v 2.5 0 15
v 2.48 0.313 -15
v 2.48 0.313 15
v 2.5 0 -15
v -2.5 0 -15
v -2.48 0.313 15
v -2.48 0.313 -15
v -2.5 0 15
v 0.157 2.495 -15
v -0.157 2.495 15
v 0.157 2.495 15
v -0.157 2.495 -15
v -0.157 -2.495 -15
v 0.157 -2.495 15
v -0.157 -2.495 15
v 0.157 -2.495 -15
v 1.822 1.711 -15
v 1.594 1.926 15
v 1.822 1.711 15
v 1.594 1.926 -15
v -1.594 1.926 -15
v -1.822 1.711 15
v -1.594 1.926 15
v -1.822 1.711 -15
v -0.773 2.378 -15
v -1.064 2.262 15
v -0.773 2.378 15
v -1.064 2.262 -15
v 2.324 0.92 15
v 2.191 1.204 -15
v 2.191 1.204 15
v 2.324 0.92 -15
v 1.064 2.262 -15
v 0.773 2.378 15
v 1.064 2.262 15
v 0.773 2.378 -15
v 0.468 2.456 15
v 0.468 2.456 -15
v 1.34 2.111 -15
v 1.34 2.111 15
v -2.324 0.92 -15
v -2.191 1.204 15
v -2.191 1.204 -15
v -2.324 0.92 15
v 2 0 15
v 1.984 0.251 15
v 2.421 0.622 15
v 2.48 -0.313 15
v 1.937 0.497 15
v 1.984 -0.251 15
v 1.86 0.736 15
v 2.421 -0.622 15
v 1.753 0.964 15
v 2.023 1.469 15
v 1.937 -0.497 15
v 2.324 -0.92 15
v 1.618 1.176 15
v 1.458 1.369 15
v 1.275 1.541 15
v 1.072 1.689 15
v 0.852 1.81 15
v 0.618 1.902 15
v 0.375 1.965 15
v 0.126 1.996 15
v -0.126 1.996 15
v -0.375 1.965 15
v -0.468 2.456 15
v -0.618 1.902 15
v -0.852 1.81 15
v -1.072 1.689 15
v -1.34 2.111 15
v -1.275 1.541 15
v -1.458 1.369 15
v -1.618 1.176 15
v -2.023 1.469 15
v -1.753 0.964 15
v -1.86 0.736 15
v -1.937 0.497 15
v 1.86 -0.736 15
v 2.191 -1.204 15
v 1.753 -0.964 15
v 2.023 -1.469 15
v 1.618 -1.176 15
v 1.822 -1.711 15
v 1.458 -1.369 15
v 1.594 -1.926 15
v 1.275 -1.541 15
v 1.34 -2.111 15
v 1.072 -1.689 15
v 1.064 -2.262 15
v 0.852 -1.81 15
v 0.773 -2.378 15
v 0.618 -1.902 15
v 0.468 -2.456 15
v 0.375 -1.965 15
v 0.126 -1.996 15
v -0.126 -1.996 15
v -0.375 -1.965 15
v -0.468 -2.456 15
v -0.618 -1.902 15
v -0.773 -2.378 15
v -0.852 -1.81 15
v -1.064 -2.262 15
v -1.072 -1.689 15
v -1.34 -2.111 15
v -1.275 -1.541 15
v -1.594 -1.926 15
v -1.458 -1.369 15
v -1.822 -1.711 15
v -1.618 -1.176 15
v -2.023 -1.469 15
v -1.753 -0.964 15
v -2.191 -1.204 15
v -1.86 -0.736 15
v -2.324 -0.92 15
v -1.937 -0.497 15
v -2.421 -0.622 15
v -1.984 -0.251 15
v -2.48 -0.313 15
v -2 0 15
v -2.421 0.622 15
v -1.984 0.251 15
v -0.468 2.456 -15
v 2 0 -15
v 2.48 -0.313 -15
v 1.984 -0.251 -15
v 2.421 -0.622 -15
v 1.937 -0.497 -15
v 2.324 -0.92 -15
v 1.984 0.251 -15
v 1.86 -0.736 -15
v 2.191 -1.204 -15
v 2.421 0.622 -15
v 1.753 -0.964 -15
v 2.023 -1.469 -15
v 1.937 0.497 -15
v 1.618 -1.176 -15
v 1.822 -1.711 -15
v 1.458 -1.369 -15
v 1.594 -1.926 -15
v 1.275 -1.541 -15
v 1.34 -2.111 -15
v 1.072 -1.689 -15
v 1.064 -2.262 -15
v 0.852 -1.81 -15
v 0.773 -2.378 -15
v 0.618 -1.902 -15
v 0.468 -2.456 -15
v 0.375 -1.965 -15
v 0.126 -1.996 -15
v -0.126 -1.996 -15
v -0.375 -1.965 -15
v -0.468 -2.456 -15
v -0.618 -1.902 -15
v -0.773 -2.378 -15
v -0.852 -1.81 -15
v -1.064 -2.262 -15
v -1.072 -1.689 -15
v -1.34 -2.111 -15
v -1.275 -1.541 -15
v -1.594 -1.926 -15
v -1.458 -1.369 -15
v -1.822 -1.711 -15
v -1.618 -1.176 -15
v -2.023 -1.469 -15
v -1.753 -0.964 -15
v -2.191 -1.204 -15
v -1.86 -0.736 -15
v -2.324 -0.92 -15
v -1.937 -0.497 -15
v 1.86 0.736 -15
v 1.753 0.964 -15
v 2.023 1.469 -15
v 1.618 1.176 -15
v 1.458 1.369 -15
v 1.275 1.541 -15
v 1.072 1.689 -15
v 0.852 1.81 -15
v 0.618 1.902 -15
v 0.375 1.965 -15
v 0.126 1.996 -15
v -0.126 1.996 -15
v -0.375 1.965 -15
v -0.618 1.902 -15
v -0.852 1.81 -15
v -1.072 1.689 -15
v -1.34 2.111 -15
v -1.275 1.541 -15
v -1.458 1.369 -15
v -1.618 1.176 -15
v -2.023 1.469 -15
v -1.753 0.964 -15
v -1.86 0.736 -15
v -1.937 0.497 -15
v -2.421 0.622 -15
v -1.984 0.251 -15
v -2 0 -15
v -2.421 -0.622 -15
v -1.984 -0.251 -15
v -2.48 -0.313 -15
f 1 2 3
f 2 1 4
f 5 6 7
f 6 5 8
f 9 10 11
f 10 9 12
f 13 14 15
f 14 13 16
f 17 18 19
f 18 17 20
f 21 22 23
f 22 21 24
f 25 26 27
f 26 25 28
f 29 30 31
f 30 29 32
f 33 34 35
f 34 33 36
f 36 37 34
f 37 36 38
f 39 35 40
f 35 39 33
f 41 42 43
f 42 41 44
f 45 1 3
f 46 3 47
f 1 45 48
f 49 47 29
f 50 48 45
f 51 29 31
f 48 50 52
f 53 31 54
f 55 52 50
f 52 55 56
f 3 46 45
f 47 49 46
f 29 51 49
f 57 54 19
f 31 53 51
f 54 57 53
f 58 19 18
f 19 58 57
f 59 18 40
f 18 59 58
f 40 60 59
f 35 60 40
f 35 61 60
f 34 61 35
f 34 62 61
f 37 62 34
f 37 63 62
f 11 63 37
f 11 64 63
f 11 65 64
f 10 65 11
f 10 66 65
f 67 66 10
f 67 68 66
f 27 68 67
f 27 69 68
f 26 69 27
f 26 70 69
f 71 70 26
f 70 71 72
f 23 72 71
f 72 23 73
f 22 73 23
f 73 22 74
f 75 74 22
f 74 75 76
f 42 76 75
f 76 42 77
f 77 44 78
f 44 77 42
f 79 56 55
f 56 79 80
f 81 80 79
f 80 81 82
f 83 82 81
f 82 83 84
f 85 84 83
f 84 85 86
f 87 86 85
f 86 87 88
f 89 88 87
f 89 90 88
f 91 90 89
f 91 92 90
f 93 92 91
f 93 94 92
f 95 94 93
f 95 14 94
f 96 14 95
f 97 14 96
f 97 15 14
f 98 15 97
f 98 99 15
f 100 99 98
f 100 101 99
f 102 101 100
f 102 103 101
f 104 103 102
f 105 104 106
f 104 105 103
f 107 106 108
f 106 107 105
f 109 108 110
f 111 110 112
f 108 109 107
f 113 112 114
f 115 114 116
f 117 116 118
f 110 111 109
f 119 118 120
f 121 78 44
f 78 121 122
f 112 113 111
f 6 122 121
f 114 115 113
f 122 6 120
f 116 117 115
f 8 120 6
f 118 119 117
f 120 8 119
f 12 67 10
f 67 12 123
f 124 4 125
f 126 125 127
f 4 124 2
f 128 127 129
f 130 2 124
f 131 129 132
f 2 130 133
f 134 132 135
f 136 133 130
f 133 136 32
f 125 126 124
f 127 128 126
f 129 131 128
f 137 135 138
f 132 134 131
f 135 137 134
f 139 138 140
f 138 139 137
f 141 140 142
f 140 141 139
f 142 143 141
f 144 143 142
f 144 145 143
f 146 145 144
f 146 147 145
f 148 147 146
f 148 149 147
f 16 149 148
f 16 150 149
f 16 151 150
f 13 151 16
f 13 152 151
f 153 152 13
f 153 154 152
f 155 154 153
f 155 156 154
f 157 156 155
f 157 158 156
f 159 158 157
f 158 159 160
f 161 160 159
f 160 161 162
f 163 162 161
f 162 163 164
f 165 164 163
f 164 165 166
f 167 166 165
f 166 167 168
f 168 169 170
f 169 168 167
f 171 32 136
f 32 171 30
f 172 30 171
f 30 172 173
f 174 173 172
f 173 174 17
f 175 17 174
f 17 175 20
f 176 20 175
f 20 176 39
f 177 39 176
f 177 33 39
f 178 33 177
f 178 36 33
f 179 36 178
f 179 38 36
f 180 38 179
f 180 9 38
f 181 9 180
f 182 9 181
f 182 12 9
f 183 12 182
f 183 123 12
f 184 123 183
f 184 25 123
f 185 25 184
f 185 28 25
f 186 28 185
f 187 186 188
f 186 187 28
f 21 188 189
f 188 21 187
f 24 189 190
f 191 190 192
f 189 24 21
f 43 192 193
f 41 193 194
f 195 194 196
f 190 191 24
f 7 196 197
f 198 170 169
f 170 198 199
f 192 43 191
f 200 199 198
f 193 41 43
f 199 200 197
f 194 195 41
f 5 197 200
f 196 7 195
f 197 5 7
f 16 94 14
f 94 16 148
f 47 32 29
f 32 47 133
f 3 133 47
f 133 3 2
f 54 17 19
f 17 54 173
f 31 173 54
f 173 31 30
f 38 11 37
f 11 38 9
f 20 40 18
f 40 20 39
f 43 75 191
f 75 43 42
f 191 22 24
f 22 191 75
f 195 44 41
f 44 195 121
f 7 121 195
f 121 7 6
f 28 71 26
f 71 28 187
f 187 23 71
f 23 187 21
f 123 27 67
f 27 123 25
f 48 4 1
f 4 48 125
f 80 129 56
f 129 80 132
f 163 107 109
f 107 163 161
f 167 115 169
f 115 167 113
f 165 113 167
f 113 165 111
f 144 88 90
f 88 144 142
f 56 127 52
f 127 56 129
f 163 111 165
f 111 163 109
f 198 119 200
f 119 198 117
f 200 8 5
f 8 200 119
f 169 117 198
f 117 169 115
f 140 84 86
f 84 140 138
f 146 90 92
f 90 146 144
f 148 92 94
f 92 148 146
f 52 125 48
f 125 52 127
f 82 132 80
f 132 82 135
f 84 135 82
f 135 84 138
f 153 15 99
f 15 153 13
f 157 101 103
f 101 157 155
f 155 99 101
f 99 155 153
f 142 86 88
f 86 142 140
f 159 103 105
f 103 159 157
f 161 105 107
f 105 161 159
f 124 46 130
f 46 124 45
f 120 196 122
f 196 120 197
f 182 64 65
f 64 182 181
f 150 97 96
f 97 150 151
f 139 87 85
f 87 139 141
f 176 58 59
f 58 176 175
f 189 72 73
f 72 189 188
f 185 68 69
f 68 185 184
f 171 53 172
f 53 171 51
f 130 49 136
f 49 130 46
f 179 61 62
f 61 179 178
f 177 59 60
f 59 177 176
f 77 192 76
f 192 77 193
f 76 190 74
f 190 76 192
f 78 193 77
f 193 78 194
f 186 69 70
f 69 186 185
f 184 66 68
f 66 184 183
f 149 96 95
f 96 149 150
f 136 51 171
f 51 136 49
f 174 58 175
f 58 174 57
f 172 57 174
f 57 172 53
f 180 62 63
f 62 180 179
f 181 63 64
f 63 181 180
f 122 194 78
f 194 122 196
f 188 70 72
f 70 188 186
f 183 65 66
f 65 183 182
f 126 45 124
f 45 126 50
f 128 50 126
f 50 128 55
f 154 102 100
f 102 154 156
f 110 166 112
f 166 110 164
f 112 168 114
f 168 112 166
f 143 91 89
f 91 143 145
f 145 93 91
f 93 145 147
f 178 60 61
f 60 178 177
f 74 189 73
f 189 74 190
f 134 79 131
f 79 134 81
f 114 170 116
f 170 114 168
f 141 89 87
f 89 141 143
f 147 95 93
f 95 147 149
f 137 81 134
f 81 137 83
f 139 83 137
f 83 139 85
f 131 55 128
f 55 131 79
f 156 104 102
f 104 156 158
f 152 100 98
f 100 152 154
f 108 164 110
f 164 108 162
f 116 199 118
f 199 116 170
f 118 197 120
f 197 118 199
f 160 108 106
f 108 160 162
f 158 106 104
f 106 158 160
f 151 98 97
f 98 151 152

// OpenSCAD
$fn = 50;


difference() {
	union() {
		translate(v = [0, 0, -15.0000000000]) {
			cylinder(h = 30, r = 2.5000000000);
		}
	}
	union() {
		translate(v = [0, 0, -100.0000000000]) {
			cylinder(h = 200, r = 2);
		}
	}
}
